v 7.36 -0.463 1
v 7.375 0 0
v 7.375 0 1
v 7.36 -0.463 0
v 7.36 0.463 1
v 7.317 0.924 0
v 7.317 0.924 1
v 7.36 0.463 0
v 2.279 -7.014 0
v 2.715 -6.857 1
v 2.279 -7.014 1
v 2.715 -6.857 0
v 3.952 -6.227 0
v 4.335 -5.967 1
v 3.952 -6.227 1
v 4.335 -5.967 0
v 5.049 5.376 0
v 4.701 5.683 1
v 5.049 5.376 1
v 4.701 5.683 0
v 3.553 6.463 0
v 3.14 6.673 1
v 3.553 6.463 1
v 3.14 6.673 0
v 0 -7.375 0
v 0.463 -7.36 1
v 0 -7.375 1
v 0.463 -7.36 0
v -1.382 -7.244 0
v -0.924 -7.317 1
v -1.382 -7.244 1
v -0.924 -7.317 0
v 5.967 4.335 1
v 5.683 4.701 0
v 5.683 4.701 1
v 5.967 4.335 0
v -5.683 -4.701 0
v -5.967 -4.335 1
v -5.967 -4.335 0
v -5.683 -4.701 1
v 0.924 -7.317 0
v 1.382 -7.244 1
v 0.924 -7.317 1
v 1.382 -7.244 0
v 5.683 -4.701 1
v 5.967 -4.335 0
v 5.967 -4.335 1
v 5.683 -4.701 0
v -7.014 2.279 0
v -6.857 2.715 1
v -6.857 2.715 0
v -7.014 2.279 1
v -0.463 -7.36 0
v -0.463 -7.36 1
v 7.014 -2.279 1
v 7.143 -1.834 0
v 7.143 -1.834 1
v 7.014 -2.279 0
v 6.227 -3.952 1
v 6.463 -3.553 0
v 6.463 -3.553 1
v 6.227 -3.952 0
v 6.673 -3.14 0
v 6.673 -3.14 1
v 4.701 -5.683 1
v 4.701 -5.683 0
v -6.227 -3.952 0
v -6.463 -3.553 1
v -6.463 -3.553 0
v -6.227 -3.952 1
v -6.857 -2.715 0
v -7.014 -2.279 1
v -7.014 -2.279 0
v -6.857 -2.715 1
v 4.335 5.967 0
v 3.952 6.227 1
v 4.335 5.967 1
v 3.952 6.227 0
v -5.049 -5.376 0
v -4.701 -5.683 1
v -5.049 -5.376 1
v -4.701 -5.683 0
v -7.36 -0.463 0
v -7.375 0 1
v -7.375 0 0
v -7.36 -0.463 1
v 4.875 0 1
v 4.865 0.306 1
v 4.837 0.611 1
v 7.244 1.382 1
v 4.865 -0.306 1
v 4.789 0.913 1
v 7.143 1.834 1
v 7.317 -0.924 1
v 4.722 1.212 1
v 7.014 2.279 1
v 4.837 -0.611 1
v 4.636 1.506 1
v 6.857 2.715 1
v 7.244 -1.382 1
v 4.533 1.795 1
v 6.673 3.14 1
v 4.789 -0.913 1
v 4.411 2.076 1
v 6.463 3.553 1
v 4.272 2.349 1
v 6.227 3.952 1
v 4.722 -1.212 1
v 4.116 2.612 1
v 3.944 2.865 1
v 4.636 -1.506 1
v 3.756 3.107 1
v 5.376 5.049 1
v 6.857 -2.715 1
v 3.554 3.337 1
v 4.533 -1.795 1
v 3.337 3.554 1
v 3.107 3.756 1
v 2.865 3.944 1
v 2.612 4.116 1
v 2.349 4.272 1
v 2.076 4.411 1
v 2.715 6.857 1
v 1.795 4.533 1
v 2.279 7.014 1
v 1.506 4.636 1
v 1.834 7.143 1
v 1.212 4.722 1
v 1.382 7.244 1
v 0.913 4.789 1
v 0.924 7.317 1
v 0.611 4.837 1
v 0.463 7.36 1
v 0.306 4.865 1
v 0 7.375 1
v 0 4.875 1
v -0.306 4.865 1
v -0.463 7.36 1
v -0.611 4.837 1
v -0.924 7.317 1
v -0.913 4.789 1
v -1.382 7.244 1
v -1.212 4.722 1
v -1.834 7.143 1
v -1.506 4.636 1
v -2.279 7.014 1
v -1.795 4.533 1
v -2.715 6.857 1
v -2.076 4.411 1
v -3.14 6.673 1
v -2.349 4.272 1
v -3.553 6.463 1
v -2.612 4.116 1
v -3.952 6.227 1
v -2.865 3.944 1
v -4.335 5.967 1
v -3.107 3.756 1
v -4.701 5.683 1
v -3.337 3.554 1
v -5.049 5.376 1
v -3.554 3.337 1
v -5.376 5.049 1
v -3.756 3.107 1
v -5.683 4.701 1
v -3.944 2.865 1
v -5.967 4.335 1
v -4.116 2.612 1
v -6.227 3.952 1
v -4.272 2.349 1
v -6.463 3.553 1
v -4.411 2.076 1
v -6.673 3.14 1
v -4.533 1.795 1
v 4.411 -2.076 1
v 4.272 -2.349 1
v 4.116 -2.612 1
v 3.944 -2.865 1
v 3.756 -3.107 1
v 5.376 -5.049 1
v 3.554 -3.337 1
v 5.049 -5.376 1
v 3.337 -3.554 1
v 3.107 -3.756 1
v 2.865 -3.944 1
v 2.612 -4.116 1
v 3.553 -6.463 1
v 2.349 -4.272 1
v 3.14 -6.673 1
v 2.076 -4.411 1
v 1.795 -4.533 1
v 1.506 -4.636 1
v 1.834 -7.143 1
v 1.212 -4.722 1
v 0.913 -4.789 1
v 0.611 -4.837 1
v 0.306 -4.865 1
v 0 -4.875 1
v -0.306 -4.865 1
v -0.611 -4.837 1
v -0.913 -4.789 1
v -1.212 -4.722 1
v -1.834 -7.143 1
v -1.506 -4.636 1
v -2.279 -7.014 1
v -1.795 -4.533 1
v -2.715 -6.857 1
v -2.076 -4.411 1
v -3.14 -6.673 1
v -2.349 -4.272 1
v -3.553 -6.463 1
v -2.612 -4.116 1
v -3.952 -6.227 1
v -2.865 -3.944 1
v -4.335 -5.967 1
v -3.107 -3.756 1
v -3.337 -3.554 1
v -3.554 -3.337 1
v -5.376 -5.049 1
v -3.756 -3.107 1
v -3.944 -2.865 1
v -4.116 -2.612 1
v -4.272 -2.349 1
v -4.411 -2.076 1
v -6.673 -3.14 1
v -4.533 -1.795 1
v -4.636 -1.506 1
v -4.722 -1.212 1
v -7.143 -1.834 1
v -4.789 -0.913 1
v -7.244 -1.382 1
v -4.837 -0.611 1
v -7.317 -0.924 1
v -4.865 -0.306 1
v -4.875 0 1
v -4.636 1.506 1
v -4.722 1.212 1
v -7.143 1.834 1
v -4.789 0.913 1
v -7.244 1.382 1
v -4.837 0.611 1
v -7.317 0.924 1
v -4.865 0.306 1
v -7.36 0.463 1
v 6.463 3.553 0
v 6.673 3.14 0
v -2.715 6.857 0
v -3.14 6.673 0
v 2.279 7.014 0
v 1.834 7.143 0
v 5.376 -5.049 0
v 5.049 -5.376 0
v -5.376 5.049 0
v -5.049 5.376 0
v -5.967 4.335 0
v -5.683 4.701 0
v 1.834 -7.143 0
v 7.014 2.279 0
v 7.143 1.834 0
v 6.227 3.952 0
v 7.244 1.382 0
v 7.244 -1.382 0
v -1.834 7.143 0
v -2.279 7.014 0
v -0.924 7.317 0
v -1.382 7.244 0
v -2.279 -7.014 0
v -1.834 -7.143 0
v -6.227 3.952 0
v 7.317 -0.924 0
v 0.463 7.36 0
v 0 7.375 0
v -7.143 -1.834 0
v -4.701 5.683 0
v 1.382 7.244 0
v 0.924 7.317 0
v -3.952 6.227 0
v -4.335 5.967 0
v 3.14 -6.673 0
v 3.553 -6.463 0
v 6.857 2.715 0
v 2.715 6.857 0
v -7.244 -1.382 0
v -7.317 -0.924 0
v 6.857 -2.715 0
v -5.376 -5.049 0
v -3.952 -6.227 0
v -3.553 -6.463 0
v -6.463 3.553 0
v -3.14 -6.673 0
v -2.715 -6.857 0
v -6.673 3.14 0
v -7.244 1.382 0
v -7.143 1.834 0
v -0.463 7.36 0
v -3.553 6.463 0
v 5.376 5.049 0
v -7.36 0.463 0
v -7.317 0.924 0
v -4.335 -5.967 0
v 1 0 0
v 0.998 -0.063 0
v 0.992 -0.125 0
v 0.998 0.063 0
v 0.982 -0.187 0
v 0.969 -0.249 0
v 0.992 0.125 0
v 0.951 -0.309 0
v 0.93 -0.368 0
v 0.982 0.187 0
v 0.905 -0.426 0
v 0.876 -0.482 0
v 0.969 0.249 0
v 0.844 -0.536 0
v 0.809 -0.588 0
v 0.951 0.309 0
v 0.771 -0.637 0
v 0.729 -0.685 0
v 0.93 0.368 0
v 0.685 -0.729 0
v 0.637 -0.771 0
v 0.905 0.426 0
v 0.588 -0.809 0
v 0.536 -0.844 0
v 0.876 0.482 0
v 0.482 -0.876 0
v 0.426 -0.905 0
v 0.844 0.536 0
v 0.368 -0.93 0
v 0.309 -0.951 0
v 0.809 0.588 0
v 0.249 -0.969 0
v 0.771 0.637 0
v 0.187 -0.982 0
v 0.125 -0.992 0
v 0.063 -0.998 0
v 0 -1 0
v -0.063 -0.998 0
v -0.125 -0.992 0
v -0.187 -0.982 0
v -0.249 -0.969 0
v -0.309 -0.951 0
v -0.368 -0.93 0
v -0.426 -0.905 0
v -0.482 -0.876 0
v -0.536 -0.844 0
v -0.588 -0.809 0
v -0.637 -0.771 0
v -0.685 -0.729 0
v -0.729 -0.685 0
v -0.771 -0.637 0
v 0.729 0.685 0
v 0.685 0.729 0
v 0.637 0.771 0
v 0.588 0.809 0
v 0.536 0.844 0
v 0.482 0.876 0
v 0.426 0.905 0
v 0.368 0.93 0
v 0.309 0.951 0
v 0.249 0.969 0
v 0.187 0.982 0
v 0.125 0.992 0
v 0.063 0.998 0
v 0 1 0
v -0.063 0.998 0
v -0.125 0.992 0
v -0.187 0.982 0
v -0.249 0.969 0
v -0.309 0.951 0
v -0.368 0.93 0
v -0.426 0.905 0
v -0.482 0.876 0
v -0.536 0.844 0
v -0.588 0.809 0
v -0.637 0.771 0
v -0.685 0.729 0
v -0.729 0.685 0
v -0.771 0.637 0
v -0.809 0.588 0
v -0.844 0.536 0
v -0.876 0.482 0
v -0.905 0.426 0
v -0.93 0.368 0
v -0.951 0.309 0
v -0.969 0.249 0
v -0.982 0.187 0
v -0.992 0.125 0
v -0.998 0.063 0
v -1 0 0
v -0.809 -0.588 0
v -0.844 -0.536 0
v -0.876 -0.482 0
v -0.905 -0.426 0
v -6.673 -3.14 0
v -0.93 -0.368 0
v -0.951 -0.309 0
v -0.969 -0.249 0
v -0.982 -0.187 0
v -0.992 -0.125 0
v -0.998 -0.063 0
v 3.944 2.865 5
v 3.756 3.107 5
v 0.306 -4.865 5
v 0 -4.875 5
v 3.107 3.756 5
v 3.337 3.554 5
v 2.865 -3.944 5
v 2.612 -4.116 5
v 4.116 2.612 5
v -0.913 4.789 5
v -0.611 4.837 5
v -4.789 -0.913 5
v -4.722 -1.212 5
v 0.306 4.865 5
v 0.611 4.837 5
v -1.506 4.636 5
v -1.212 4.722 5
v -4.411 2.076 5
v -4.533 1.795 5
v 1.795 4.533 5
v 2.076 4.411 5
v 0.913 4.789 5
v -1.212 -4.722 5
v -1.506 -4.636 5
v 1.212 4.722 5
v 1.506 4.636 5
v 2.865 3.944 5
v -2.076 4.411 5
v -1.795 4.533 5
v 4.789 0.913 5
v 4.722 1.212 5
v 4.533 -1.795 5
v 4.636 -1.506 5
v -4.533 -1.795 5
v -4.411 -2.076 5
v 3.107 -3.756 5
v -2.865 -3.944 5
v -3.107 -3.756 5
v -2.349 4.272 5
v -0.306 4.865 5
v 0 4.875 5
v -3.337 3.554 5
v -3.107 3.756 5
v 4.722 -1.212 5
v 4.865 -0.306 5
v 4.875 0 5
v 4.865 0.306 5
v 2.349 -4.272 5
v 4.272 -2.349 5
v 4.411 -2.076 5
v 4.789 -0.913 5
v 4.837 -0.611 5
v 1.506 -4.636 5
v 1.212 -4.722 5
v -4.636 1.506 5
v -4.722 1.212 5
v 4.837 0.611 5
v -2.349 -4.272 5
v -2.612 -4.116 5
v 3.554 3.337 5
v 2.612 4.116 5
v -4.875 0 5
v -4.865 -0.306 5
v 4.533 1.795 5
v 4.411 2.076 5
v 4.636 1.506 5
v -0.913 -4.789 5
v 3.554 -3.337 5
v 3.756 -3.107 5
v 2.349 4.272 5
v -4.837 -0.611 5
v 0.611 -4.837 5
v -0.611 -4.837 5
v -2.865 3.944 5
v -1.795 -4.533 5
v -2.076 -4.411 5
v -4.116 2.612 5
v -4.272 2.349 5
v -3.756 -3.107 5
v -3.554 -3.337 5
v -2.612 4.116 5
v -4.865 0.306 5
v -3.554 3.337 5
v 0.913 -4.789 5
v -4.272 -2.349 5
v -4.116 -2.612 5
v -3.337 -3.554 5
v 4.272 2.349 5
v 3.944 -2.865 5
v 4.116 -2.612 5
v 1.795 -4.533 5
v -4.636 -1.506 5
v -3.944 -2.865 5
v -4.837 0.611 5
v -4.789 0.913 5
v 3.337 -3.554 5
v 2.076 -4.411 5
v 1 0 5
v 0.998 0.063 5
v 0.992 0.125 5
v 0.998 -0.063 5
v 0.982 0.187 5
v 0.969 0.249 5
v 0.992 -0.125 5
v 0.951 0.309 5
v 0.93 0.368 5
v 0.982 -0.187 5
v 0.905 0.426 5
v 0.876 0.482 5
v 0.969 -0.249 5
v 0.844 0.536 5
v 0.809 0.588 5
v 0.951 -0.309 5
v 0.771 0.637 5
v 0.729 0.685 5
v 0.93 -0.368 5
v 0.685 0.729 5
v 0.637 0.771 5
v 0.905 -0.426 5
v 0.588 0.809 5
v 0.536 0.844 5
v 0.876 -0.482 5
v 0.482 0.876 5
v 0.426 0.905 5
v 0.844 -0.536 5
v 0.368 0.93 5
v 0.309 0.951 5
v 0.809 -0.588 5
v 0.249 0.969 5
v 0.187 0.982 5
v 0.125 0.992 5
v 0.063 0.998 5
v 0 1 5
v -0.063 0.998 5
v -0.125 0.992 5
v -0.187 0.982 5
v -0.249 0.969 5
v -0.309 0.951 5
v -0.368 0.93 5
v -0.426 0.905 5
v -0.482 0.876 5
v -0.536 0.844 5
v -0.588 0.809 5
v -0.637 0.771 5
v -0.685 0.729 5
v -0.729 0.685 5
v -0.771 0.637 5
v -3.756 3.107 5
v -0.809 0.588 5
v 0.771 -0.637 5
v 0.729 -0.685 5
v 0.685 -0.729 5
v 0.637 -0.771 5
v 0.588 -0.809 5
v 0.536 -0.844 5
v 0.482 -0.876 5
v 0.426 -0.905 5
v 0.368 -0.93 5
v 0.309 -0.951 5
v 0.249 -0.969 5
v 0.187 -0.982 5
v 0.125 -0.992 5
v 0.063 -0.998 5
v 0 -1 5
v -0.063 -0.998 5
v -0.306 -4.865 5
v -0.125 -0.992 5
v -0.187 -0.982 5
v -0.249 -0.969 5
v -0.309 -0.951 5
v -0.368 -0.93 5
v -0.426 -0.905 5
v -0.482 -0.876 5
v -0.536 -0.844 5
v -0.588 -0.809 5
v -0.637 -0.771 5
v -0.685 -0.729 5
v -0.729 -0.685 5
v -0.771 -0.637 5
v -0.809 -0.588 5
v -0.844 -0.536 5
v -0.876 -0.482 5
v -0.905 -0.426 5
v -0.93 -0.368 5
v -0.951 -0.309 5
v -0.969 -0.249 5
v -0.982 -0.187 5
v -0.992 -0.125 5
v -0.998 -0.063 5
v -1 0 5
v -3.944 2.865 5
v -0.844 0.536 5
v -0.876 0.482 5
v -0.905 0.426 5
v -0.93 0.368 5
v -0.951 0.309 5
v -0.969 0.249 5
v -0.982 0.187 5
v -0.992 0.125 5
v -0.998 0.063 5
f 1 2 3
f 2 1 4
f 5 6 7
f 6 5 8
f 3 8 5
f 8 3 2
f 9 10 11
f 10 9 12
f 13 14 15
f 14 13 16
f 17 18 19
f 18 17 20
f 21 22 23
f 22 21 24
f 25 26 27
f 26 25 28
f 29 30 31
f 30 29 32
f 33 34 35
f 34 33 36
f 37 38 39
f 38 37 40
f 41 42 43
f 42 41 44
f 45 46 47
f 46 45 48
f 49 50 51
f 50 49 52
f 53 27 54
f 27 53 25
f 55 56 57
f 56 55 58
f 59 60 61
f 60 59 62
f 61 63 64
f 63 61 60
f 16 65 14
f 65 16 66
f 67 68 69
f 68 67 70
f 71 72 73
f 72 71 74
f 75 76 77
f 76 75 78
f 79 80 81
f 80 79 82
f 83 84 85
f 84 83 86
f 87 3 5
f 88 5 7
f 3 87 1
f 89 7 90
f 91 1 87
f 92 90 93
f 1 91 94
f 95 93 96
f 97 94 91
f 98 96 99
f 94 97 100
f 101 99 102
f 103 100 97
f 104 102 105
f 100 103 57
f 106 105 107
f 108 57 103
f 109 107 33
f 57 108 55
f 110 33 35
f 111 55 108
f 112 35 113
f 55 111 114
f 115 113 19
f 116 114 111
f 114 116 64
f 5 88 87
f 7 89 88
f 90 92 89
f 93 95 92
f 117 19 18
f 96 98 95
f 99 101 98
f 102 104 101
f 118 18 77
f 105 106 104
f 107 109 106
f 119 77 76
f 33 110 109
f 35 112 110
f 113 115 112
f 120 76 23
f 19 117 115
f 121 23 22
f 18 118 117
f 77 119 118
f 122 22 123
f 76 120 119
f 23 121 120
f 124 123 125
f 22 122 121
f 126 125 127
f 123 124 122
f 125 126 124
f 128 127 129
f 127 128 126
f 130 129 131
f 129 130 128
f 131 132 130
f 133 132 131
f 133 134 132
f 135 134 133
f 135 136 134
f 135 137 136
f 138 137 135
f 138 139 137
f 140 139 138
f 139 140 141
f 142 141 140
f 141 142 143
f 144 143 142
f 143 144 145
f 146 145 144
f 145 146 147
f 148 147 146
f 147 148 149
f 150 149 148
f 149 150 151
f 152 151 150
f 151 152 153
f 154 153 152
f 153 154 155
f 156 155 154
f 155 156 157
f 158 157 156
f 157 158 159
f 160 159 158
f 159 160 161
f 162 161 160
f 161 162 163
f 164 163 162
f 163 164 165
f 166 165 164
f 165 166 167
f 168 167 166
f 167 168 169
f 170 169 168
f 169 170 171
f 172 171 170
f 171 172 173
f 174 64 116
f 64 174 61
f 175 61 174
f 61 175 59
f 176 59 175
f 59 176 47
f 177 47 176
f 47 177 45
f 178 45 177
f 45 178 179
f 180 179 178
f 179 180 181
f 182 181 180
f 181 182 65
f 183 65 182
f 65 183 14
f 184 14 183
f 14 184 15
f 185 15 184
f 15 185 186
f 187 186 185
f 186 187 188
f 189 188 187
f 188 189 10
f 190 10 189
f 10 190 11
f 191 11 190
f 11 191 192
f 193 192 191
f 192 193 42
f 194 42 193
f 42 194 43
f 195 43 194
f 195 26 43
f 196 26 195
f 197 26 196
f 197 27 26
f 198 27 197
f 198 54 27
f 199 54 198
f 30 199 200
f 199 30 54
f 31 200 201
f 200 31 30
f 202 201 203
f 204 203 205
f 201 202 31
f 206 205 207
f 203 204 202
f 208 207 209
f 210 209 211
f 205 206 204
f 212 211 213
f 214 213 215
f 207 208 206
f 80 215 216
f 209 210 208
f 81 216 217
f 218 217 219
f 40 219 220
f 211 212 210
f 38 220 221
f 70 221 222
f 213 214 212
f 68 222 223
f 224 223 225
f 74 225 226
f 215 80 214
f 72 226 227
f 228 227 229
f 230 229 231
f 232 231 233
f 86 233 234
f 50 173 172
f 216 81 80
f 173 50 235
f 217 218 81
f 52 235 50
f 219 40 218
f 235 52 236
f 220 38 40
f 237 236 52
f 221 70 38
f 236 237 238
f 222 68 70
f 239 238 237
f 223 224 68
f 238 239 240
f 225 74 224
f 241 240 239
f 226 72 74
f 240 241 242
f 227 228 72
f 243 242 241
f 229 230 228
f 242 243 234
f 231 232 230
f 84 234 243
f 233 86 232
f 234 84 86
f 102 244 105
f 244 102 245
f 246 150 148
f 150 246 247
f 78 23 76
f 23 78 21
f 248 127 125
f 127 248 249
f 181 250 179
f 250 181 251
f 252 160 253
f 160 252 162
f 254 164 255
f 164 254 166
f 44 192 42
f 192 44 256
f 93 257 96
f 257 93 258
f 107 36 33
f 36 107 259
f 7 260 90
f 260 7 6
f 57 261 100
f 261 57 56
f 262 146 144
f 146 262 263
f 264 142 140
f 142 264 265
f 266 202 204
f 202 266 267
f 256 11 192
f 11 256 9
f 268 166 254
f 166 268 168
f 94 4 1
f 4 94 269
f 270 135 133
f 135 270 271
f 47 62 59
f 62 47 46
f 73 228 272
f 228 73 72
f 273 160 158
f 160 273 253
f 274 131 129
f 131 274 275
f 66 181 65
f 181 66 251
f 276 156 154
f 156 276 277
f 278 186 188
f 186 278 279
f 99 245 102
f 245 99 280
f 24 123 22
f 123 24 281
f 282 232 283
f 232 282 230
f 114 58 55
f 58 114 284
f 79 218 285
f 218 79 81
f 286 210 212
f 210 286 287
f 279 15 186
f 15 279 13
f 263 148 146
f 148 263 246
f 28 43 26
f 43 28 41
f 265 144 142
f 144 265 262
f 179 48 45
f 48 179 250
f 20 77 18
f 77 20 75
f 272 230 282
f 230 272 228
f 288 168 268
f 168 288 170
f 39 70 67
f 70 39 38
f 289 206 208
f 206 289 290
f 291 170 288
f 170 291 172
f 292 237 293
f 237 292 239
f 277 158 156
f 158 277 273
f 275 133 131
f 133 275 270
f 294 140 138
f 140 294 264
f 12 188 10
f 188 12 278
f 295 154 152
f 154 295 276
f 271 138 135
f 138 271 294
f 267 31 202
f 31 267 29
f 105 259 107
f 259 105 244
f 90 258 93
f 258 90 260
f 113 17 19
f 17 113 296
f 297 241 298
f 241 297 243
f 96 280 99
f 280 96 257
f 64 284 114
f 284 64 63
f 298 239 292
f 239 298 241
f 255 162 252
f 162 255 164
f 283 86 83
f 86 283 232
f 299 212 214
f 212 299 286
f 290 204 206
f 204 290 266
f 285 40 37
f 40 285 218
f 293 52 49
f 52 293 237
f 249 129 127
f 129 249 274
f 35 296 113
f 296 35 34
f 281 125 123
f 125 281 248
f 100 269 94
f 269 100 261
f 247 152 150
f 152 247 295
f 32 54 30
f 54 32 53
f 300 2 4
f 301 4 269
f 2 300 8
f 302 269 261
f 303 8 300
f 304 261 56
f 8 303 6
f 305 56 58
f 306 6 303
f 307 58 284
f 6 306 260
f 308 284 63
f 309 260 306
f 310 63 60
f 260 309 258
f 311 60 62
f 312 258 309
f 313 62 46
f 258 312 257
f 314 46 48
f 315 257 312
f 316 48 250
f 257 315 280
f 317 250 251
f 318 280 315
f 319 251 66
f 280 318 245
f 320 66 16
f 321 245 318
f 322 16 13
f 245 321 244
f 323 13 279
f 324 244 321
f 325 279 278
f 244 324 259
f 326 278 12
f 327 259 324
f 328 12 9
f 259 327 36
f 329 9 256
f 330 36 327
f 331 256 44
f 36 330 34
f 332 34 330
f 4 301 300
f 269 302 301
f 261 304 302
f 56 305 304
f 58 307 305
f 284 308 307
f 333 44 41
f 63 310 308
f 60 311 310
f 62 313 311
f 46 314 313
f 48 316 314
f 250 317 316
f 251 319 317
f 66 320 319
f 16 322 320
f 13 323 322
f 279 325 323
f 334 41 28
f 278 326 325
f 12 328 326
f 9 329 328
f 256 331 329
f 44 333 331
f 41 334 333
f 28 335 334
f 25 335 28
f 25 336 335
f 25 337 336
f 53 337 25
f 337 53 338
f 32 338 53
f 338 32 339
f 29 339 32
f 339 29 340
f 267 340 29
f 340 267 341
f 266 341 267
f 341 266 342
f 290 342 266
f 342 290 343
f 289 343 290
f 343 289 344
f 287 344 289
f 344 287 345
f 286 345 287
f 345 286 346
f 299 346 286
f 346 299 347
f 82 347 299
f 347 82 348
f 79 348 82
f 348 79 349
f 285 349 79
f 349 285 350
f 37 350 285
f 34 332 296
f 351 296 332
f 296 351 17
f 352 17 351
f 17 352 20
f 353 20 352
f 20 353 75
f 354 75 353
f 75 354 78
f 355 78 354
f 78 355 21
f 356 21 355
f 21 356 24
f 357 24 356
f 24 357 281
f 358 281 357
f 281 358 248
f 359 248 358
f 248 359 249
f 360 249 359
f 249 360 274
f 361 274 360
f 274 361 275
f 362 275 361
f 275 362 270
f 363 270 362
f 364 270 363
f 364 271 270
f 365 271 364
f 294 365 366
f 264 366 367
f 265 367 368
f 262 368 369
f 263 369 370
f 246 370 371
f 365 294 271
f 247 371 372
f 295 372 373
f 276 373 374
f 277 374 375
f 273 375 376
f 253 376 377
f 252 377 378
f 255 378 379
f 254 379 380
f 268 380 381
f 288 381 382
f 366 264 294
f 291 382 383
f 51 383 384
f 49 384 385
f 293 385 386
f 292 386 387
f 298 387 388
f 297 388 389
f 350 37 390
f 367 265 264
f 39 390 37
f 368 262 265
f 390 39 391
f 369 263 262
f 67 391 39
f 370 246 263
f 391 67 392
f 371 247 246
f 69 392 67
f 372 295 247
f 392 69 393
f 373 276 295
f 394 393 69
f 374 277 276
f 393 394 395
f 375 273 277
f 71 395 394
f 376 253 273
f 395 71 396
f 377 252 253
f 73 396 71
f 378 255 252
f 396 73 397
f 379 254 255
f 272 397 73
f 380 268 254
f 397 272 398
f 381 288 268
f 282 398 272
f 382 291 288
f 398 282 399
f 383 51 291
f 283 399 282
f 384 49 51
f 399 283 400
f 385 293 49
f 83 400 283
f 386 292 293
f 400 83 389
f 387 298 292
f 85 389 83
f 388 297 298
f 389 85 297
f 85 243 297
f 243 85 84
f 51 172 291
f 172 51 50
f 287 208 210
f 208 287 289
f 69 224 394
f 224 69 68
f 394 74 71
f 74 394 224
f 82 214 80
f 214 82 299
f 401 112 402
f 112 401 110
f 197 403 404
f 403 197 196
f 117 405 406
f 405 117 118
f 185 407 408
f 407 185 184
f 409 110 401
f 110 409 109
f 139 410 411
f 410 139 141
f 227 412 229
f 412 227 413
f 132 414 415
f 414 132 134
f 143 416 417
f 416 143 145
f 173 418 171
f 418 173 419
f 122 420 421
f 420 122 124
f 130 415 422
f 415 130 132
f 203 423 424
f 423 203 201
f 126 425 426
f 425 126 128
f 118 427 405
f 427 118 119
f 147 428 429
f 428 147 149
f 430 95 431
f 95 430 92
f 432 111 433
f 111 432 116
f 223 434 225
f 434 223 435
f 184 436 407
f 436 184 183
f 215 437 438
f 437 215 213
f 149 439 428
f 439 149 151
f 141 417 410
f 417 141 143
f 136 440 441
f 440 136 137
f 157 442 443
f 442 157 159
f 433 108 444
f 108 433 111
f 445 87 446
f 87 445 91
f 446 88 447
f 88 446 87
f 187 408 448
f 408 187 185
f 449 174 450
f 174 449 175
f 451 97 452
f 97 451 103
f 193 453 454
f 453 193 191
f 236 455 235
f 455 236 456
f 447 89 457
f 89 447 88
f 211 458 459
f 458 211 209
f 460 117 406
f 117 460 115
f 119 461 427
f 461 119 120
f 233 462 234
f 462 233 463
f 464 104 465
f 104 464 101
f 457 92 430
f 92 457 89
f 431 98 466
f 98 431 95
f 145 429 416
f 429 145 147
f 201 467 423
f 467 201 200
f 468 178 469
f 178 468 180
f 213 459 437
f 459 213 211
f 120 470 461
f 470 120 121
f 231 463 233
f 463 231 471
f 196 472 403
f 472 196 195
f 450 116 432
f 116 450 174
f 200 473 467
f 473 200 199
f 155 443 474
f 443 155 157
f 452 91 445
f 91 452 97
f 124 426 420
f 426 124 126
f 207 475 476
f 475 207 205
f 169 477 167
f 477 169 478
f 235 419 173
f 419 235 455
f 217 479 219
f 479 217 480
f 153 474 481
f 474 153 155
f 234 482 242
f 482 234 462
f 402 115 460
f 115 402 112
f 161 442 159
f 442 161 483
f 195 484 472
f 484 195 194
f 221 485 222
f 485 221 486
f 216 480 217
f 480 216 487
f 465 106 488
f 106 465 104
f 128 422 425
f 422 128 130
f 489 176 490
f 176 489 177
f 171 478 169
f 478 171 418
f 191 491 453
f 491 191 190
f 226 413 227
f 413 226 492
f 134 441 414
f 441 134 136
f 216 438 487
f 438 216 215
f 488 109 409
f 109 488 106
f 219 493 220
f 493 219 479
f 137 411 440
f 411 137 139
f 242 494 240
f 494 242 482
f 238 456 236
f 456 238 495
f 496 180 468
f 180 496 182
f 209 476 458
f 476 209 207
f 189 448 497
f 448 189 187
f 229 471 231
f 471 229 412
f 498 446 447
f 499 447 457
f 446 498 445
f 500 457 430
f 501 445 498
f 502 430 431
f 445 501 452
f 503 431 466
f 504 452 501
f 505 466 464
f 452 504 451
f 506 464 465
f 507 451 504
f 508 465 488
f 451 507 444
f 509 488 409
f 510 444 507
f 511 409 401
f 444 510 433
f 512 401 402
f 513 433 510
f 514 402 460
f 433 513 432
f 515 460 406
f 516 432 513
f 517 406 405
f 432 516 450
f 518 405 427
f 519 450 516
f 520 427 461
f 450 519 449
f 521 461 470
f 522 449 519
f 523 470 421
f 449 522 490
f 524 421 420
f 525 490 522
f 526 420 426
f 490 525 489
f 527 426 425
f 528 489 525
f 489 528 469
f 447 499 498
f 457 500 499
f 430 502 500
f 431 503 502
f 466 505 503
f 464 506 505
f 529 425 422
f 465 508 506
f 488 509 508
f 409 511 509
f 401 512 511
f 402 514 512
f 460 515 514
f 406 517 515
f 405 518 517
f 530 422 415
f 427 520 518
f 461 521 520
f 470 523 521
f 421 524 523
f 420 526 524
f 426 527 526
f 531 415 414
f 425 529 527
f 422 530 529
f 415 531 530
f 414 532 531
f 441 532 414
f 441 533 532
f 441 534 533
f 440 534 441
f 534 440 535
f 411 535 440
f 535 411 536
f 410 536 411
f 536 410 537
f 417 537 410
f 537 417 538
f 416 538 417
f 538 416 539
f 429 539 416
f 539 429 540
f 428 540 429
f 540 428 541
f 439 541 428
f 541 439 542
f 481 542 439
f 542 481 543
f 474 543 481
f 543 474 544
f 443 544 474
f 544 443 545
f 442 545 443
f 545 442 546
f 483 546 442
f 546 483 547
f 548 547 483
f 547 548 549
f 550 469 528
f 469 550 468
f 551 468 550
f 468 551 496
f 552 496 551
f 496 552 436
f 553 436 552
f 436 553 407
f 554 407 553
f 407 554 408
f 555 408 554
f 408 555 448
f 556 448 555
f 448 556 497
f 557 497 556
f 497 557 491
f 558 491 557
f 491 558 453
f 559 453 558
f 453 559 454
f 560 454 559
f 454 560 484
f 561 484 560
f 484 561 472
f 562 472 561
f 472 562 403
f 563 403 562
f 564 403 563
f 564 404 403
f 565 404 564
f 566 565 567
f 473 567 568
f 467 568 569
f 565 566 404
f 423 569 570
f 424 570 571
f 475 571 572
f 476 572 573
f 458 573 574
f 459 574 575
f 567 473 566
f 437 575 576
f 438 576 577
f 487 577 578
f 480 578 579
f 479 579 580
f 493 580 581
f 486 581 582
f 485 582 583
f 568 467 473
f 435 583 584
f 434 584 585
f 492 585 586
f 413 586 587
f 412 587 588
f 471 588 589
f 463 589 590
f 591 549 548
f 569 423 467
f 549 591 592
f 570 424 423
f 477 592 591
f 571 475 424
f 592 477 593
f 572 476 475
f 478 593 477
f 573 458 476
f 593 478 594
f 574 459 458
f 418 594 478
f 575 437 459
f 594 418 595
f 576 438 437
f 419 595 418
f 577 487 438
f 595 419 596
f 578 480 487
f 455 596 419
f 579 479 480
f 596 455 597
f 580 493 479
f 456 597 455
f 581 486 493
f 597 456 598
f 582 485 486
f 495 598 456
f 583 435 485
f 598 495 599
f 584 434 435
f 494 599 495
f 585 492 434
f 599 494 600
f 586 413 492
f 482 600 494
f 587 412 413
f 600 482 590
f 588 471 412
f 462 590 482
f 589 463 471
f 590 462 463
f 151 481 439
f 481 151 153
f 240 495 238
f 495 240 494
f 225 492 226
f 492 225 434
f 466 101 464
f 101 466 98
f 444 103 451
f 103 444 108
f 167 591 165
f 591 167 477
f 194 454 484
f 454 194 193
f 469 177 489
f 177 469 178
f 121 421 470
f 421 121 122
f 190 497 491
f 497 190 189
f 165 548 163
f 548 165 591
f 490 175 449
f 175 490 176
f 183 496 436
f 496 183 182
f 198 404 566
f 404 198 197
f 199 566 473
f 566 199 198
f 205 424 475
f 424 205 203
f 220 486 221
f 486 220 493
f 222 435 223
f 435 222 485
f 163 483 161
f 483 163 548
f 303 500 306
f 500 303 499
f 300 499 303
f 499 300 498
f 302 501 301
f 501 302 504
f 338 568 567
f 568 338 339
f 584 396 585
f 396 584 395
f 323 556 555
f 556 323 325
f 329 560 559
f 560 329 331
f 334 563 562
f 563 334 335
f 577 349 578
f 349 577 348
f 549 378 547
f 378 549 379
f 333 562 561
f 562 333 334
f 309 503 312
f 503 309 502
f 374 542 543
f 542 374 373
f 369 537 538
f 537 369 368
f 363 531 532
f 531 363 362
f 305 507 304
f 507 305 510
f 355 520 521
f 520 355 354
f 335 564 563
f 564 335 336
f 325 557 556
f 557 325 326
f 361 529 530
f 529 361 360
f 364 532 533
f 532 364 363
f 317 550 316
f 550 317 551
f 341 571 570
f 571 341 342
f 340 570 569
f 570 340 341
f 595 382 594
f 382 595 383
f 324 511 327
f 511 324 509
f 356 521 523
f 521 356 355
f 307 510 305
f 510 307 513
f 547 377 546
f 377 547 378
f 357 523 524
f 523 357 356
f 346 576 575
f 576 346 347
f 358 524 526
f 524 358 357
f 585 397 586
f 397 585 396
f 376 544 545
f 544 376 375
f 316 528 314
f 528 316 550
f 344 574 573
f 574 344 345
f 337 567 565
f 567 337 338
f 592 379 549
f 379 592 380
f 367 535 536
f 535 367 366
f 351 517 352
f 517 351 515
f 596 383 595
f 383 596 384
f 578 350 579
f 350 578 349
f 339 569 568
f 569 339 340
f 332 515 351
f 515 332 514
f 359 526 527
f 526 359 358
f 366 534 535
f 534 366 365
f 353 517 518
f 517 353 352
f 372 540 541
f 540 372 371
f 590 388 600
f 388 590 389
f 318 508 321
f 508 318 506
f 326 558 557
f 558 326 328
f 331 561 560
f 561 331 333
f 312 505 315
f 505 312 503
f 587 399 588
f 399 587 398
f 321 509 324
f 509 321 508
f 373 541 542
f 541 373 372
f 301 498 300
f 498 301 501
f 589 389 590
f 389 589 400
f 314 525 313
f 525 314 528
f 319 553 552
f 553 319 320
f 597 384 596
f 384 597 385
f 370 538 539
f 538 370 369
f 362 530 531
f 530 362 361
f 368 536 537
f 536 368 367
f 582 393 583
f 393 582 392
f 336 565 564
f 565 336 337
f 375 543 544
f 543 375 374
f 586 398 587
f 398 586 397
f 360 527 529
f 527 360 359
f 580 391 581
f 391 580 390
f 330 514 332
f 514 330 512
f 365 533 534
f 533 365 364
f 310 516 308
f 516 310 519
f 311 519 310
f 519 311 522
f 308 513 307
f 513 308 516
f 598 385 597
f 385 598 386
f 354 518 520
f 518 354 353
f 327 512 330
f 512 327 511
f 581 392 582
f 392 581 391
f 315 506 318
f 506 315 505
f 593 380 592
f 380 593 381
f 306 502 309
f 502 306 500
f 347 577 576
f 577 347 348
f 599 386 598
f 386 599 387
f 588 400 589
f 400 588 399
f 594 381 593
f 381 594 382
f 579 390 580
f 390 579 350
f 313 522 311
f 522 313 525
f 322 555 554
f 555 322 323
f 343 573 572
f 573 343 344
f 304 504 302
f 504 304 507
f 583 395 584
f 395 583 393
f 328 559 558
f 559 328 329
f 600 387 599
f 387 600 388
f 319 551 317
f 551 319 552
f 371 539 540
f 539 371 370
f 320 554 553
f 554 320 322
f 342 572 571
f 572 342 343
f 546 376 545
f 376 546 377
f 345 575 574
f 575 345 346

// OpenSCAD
// file: funcSuporteDoCuboBaixo_v2.scad
use <funcoes_GFCx.scad>
module funcSuporteDoCuboBaixo_v2(){
    // ----- ----- ----- Declaração de Variáveis ----- ----- ----- //
    res=100;

    // ----- ----- ----- Declaração de Funções ----- ----- ----- //
    
    //funcao_2d_array_cilindros(r,d,h,nx,ny,geo,res,nome="Conjunto 1")

    //suporte do cubo
    difference(){
        translate([-2,-2,0])cube([54,54,120]);
        #translate([8-34/2,-2-54/2,70])cube([2*34,2*54,2*40]);
        #translate([8,-2,10])cube([34,54,50]);
        #translate([-2,8,10])cube([54,34,50]);
        #translate([-2,8,70])cube([54,34,40]);
    }
     difference(){
        translate([-25,-25,0])cube([100,100,15]);
        //#translate([-12.5,-12.5,0])cylinder(h=15, r=3.3);
        //#translate([62.5,62.5,0])cylinder(h=15, r=3.3);
        //#translate([62.5,-12.5,0])cylinder(h=15, r=3.3);
        //#translate([-12.5,62.5,0])cylinder(h=15, r=3.3);
        #translate([-12.5,-12.5,0])
        #funcao_2d_array_cilindros(7/2,25.2,15,4,4,1,res,nome="Base do Suporte");
    }

    //base
    rotate(a=[0,0,0])translate([-2,8,20])
    difference(){
        rotate(a=[90,30,0])translate([0,0,0])cylinder(10,10,10,$fn=3);
        #translate([0,-10,-5])cube([10,10,15]);
    }
    rotate(a=[0,0,90])translate([-2,2,20])
    difference(){
        rotate(a=[90,30,0])translate([0,0,0])cylinder(10,10,10,$fn=3);
        #translate([0,-10,-5])cube([10,10,15]);
    }
    translate([52,52,20])rotate(a=[0,0,270])
    difference(){
        rotate(a=[90,30,0])translate([0,0,0])cylinder(10,10,10,$fn=3);
        #translate([0,-10,-5])cube([10,10,15]);
    }
    translate([8,52,20])rotate(a=[0,0,270])
    difference(){
        rotate(a=[90,30,0])translate([0,0,0])cylinder(10,10,10,$fn=3);
        #translate([0,-10,-5])cube([10,10,15]);
    }
    rotate(a=[0,0,0])translate([-2,52,20])
    difference(){
        rotate(a=[90,30,0])translate([0,0,0])cylinder(10,10,10,$fn=3);
        #translate([0,-10,-5])cube([10,10,15]);
    }
    rotate(a=[0,0,90])translate([-2,-42,20])
    difference(){
        rotate(a=[90,30,0])translate([0,0,0])cylinder(10,10,10,$fn=3);
        #translate([0,-10,-5])cube([10,10,15]);
    }
    translate([52,-2,20])rotate(a=[0,0,180])
    difference(){
        rotate(a=[90,30,0])translate([0,0,0])cylinder(10,10,10,$fn=3);
        #translate([0,-10,-5])cube([10,10,15]);
    }
    translate([52,42,20])rotate(a=[0,0,180])
    difference(){
        rotate(a=[90,30,0])translate([0,0,0])cylinder(10,10,10,$fn=3);
        #translate([0,-10,-5])cube([10,10,15]);
    }
}

translate([25,25,0])
translate([-50,-50,0])
funcSuporteDoCuboBaixo_v2();
// main file
// ----- ----- ----- Declaração de Variáveis ----- ----- ----- //
res=100;
folga1=0.125;

cubox=50-35;
cuboy=50;
cuboz=60;
rBob=15;
esp=2.5;

rInt=10.45;
rExt=12.45;
alt=15;

supr=18;
supalt=5;

// Estamos nos referindo aqui ao encaixe do interior
encx=54.5;
ency=54.5;
encz=10;
espenc=2;

// ----- ----- ----- Declaração de Funções ----- ----- ----- //
use <funcoes_GFCx.scad>
use <funcSuporteDoCuboBaixo_v2.scad>

// ----- ----- ----- MAIN ----- ----- ----- //
r_splh=1;
altu=100;
altbolacha=5;
altstepbolacha=1;

difference(){
    translate([0,0,0]){
        cylinder(altstepbolacha,(cubox-2*esp)/2+esp-folga1,(cubox-2*esp)/2+esp-folga1,$fn=res);
        cylinder(altbolacha,(cubox-2*esp)/2-folga1,(cubox-2*esp)/2-folga1,$fn=res);
    }
    #cylinder(altbolacha,r_splh,r_splh,$fn=res);
}
